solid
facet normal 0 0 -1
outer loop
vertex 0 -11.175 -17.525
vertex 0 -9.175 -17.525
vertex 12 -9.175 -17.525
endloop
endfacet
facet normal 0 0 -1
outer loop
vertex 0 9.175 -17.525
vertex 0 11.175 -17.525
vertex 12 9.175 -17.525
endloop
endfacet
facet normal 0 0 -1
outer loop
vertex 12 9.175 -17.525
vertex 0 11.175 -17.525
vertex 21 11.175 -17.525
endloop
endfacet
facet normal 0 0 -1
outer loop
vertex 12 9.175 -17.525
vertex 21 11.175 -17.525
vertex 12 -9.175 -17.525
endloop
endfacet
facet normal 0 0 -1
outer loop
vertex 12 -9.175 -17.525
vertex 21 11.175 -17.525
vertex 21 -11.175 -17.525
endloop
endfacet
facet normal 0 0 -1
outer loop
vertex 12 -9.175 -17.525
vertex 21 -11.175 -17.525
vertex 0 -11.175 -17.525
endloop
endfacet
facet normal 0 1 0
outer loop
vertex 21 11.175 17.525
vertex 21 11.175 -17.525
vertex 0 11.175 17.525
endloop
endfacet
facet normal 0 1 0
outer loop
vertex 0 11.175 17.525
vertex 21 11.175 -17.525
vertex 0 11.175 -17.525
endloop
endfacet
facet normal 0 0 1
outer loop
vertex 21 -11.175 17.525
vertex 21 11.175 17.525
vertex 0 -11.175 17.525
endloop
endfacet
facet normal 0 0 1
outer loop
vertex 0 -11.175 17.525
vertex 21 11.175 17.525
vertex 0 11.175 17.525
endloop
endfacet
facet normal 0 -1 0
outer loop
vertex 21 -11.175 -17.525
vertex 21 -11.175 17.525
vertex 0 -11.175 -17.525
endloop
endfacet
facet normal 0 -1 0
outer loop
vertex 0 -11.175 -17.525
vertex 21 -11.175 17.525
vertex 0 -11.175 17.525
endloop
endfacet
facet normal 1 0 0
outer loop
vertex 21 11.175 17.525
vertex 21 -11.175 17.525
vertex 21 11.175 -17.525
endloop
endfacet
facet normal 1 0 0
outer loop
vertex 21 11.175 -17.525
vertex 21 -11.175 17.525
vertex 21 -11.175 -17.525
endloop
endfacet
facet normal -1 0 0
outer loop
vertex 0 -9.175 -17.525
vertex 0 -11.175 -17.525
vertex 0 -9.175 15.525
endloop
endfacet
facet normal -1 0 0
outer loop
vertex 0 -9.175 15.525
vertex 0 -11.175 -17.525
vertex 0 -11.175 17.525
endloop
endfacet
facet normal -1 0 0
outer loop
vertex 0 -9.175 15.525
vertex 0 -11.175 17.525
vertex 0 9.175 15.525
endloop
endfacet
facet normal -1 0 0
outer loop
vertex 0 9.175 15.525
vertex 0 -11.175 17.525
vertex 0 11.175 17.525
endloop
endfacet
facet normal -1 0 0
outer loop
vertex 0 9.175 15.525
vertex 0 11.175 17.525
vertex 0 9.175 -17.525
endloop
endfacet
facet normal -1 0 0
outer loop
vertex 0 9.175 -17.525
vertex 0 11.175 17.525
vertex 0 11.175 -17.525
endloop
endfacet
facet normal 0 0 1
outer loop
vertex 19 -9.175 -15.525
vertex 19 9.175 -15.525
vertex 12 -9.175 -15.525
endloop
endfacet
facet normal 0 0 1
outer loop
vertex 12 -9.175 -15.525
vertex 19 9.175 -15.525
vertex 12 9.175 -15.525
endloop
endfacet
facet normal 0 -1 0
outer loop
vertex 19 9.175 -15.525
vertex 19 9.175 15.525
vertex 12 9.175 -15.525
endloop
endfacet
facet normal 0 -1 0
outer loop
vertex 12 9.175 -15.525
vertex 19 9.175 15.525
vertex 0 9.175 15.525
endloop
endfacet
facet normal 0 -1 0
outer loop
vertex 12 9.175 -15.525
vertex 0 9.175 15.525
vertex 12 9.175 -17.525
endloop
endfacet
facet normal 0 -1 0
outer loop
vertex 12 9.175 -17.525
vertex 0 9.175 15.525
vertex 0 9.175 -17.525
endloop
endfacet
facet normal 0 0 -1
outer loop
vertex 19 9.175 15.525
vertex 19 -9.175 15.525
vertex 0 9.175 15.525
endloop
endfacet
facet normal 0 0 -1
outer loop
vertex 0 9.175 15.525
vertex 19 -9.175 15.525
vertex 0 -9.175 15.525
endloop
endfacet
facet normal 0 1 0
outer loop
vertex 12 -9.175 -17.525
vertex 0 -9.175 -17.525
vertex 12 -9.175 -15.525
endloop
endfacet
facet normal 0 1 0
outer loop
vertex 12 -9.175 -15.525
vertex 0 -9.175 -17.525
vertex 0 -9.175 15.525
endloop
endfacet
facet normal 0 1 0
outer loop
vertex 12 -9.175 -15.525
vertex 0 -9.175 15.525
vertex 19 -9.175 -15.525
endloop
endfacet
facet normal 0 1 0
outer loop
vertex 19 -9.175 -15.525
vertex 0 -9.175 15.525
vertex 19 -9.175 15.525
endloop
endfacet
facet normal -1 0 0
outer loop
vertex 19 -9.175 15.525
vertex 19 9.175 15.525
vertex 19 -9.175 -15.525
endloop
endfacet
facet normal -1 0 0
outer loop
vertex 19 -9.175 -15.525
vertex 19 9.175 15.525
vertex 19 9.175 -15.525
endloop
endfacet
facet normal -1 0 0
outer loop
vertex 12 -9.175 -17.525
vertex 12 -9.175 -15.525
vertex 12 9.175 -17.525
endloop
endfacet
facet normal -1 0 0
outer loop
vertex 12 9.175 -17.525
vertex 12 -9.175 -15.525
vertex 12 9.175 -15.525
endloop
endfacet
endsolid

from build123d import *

# Parameters (mm, degrees)
SKETCH4_W           = 31.05
SKETCH4_H           = 18.35
BOSS_EXTRUDE1_DEPTH = 19
SHELL1_T            = 2
SKETCH5_W           = 12
SKETCH5_H           = 18.35
CUT_EXTRUDE1_DEPTH  = 2


with BuildPart() as part:
    # Sketch4 → Boss-Extrude1 (new body)
    with BuildSketch(Plane(origin=(0, 0, 0), x_dir=(0, 0, -1), z_dir=(1, 0, 0))):
        Rectangle(SKETCH4_W, SKETCH4_H)
    extrude(amount=BOSS_EXTRUDE1_DEPTH)

    # Shell1
    shell1_openings = [part.faces().sort_by_distance(p)[0] for p in [
        (0, 0, 0),
    ]]
    offset(amount=SHELL1_T, openings=shell1_openings, kind=Kind.INTERSECTION)

    # Sketch5 → Cut-Extrude1 (cut)
    with BuildSketch(Plane(origin=(0, 0, -17.525), x_dir=(-1, 0, 0), z_dir=(0, 0, -1))):
        with Locations((-6, 0)):
            Rectangle(SKETCH5_W, SKETCH5_H)
    extrude(amount=-CUT_EXTRUDE1_DEPTH, mode=Mode.SUBTRACT)


solid = part.part
